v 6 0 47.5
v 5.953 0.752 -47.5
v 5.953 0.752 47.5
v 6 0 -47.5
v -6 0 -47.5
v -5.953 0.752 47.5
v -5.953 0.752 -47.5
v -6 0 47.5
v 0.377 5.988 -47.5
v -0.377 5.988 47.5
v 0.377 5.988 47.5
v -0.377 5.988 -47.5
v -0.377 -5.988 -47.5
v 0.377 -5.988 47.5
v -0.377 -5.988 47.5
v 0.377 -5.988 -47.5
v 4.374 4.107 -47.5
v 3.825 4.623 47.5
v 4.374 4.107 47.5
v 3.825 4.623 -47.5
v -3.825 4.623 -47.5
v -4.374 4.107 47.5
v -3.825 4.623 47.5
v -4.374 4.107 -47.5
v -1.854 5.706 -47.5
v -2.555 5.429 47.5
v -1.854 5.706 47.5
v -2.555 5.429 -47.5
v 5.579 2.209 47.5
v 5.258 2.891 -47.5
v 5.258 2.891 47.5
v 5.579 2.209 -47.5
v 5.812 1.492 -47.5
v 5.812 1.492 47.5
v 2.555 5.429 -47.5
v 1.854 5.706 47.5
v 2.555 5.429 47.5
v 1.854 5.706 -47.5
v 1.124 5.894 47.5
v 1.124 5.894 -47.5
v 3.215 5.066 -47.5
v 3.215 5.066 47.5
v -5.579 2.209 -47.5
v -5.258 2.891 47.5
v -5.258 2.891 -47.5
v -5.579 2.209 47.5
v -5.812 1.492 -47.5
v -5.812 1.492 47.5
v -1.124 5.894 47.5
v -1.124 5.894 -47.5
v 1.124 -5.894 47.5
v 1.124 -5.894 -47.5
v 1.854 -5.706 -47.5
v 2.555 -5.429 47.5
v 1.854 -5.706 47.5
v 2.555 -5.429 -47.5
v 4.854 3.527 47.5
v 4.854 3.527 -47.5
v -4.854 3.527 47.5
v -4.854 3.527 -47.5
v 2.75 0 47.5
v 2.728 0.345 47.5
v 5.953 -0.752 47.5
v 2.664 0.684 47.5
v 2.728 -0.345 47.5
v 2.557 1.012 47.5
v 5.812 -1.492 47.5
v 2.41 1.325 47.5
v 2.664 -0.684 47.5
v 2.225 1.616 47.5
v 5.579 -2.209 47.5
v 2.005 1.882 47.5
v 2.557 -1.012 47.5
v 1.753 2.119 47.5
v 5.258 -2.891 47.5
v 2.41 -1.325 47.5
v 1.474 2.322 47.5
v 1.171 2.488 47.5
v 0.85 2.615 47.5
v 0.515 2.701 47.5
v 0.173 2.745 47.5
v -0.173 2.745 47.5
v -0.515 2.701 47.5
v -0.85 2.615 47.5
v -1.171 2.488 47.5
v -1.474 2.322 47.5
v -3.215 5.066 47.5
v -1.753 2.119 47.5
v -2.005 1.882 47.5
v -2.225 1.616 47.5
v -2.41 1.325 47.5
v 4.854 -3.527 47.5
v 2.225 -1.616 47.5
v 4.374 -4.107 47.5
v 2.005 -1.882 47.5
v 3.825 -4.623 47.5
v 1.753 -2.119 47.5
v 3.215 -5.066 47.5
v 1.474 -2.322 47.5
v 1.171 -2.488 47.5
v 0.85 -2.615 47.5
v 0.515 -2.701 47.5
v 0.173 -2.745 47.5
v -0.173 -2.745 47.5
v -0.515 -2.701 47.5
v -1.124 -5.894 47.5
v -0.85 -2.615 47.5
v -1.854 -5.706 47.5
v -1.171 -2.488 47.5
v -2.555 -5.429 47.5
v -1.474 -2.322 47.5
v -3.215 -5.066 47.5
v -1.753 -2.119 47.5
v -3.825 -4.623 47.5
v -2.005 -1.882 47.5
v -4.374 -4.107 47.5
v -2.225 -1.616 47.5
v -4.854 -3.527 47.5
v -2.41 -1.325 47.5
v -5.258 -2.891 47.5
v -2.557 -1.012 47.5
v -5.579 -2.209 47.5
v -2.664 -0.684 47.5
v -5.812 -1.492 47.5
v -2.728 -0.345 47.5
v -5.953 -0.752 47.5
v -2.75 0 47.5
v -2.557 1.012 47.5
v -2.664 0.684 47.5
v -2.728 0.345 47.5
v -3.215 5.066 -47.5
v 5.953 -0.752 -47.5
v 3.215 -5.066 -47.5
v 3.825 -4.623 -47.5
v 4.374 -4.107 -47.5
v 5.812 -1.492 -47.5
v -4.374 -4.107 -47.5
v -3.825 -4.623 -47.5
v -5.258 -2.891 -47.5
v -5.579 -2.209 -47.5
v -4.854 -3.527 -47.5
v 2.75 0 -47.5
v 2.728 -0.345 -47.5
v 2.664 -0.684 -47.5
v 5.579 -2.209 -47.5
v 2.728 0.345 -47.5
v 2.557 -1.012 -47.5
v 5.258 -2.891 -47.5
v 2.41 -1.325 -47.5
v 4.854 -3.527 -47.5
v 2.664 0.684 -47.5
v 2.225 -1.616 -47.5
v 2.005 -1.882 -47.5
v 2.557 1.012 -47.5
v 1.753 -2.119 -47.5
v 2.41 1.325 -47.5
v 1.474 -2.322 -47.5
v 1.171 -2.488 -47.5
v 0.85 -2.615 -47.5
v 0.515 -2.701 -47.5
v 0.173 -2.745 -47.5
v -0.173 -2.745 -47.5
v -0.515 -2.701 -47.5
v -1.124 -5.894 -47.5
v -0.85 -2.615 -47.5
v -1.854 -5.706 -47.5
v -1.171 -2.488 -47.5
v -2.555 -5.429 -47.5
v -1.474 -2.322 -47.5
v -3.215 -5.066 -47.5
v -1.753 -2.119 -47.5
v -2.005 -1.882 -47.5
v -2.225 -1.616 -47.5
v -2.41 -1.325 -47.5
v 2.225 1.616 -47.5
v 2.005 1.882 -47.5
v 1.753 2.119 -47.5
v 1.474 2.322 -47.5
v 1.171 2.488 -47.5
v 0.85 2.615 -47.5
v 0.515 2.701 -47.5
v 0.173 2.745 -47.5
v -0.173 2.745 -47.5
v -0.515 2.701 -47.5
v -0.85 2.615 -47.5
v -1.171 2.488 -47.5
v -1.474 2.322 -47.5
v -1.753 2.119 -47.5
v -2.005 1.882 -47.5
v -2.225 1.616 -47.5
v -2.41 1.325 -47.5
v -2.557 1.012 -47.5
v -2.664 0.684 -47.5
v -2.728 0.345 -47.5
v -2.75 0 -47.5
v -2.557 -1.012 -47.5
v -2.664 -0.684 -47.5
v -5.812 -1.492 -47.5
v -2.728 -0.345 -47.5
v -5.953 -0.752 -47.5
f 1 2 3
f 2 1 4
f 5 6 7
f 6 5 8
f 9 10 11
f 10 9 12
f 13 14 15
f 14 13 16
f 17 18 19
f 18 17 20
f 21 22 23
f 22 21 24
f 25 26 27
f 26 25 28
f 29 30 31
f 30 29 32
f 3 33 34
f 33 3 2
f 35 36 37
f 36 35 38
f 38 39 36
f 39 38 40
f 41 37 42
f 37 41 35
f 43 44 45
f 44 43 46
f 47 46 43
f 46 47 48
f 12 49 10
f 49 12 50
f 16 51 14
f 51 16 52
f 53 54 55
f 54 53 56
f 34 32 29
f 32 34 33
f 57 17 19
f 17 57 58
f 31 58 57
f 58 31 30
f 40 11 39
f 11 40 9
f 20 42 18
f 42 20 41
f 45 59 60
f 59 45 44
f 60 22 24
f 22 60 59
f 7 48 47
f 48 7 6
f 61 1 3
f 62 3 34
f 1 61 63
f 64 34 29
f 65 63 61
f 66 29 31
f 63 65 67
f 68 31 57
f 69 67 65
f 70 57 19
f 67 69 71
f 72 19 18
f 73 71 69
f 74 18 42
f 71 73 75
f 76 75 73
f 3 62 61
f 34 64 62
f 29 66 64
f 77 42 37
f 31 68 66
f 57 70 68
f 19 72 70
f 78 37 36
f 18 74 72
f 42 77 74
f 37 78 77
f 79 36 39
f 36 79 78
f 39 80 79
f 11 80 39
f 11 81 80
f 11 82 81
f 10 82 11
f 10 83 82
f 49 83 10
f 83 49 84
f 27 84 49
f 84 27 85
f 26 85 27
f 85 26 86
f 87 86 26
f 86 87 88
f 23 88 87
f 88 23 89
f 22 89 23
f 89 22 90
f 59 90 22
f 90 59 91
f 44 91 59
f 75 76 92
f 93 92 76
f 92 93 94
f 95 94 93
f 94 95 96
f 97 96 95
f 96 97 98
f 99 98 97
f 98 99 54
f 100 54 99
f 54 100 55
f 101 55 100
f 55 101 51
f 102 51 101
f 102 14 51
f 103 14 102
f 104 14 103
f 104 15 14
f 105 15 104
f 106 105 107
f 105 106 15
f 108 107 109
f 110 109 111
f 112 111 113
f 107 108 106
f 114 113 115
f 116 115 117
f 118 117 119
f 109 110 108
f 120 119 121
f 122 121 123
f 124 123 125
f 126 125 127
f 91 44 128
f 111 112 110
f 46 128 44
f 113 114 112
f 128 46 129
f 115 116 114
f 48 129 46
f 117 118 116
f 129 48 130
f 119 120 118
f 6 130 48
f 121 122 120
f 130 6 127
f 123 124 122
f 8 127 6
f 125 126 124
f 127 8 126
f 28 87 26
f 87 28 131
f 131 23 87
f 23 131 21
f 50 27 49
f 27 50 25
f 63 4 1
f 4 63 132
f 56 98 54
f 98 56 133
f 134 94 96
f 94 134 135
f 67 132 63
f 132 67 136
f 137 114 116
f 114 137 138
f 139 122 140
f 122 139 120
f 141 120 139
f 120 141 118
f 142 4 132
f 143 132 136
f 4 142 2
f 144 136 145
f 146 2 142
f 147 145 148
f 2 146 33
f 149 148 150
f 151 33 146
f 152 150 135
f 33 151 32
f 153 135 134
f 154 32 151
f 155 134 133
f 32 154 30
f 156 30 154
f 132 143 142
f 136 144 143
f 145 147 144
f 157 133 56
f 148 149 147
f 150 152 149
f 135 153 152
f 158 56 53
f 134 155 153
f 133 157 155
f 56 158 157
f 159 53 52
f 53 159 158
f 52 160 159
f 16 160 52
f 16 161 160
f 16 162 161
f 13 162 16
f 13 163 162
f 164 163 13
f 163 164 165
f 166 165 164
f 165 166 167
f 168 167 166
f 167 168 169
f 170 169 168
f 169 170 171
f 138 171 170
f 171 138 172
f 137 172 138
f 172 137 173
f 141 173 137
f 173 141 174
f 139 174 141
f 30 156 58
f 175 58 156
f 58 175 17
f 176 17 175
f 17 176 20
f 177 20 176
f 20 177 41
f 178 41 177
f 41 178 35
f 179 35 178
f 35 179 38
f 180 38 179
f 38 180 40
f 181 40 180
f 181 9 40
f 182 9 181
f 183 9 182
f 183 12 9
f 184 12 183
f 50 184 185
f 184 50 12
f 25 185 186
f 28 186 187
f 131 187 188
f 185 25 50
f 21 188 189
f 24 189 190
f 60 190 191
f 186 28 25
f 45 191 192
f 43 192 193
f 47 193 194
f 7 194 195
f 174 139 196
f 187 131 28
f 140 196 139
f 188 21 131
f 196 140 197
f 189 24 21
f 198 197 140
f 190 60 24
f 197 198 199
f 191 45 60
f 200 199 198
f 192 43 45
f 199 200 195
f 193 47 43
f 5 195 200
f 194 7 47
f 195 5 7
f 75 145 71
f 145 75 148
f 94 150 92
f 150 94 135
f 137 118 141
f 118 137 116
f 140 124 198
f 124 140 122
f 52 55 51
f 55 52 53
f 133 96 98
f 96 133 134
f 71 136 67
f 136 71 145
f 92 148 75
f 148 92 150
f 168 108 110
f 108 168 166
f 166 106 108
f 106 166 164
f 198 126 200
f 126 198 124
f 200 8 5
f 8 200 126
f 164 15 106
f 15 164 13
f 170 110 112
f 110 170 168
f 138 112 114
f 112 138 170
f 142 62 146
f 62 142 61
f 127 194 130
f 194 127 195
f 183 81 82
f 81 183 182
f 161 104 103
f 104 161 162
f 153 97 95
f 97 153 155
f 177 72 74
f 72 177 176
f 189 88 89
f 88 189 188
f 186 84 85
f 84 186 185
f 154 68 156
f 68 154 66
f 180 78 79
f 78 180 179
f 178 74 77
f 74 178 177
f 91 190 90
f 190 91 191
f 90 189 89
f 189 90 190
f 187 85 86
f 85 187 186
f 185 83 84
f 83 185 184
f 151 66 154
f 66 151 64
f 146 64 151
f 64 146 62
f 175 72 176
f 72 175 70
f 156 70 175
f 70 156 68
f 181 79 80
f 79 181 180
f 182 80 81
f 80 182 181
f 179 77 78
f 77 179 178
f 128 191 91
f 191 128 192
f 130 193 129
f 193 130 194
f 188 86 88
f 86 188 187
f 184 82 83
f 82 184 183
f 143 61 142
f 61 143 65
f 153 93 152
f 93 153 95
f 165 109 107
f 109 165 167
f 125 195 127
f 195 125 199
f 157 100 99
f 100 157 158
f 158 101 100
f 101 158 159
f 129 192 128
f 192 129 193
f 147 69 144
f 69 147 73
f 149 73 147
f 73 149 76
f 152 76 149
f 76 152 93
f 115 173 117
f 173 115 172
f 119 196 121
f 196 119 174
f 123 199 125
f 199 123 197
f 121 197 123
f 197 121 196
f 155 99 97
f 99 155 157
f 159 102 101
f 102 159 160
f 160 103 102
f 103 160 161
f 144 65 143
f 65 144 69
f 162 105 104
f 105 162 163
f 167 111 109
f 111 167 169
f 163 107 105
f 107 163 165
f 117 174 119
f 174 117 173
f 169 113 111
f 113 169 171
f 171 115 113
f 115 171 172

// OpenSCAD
$fn = 50;


difference() {
	union() {
		translate(v = [0, 0, -47.5000000000]) {
			cylinder(h = 95, r = 6.0000000000);
		}
	}
	union() {
		translate(v = [0, 0, -100.0000000000]) {
			cylinder(h = 200, r = 2.7500000000);
		}
	}
}
